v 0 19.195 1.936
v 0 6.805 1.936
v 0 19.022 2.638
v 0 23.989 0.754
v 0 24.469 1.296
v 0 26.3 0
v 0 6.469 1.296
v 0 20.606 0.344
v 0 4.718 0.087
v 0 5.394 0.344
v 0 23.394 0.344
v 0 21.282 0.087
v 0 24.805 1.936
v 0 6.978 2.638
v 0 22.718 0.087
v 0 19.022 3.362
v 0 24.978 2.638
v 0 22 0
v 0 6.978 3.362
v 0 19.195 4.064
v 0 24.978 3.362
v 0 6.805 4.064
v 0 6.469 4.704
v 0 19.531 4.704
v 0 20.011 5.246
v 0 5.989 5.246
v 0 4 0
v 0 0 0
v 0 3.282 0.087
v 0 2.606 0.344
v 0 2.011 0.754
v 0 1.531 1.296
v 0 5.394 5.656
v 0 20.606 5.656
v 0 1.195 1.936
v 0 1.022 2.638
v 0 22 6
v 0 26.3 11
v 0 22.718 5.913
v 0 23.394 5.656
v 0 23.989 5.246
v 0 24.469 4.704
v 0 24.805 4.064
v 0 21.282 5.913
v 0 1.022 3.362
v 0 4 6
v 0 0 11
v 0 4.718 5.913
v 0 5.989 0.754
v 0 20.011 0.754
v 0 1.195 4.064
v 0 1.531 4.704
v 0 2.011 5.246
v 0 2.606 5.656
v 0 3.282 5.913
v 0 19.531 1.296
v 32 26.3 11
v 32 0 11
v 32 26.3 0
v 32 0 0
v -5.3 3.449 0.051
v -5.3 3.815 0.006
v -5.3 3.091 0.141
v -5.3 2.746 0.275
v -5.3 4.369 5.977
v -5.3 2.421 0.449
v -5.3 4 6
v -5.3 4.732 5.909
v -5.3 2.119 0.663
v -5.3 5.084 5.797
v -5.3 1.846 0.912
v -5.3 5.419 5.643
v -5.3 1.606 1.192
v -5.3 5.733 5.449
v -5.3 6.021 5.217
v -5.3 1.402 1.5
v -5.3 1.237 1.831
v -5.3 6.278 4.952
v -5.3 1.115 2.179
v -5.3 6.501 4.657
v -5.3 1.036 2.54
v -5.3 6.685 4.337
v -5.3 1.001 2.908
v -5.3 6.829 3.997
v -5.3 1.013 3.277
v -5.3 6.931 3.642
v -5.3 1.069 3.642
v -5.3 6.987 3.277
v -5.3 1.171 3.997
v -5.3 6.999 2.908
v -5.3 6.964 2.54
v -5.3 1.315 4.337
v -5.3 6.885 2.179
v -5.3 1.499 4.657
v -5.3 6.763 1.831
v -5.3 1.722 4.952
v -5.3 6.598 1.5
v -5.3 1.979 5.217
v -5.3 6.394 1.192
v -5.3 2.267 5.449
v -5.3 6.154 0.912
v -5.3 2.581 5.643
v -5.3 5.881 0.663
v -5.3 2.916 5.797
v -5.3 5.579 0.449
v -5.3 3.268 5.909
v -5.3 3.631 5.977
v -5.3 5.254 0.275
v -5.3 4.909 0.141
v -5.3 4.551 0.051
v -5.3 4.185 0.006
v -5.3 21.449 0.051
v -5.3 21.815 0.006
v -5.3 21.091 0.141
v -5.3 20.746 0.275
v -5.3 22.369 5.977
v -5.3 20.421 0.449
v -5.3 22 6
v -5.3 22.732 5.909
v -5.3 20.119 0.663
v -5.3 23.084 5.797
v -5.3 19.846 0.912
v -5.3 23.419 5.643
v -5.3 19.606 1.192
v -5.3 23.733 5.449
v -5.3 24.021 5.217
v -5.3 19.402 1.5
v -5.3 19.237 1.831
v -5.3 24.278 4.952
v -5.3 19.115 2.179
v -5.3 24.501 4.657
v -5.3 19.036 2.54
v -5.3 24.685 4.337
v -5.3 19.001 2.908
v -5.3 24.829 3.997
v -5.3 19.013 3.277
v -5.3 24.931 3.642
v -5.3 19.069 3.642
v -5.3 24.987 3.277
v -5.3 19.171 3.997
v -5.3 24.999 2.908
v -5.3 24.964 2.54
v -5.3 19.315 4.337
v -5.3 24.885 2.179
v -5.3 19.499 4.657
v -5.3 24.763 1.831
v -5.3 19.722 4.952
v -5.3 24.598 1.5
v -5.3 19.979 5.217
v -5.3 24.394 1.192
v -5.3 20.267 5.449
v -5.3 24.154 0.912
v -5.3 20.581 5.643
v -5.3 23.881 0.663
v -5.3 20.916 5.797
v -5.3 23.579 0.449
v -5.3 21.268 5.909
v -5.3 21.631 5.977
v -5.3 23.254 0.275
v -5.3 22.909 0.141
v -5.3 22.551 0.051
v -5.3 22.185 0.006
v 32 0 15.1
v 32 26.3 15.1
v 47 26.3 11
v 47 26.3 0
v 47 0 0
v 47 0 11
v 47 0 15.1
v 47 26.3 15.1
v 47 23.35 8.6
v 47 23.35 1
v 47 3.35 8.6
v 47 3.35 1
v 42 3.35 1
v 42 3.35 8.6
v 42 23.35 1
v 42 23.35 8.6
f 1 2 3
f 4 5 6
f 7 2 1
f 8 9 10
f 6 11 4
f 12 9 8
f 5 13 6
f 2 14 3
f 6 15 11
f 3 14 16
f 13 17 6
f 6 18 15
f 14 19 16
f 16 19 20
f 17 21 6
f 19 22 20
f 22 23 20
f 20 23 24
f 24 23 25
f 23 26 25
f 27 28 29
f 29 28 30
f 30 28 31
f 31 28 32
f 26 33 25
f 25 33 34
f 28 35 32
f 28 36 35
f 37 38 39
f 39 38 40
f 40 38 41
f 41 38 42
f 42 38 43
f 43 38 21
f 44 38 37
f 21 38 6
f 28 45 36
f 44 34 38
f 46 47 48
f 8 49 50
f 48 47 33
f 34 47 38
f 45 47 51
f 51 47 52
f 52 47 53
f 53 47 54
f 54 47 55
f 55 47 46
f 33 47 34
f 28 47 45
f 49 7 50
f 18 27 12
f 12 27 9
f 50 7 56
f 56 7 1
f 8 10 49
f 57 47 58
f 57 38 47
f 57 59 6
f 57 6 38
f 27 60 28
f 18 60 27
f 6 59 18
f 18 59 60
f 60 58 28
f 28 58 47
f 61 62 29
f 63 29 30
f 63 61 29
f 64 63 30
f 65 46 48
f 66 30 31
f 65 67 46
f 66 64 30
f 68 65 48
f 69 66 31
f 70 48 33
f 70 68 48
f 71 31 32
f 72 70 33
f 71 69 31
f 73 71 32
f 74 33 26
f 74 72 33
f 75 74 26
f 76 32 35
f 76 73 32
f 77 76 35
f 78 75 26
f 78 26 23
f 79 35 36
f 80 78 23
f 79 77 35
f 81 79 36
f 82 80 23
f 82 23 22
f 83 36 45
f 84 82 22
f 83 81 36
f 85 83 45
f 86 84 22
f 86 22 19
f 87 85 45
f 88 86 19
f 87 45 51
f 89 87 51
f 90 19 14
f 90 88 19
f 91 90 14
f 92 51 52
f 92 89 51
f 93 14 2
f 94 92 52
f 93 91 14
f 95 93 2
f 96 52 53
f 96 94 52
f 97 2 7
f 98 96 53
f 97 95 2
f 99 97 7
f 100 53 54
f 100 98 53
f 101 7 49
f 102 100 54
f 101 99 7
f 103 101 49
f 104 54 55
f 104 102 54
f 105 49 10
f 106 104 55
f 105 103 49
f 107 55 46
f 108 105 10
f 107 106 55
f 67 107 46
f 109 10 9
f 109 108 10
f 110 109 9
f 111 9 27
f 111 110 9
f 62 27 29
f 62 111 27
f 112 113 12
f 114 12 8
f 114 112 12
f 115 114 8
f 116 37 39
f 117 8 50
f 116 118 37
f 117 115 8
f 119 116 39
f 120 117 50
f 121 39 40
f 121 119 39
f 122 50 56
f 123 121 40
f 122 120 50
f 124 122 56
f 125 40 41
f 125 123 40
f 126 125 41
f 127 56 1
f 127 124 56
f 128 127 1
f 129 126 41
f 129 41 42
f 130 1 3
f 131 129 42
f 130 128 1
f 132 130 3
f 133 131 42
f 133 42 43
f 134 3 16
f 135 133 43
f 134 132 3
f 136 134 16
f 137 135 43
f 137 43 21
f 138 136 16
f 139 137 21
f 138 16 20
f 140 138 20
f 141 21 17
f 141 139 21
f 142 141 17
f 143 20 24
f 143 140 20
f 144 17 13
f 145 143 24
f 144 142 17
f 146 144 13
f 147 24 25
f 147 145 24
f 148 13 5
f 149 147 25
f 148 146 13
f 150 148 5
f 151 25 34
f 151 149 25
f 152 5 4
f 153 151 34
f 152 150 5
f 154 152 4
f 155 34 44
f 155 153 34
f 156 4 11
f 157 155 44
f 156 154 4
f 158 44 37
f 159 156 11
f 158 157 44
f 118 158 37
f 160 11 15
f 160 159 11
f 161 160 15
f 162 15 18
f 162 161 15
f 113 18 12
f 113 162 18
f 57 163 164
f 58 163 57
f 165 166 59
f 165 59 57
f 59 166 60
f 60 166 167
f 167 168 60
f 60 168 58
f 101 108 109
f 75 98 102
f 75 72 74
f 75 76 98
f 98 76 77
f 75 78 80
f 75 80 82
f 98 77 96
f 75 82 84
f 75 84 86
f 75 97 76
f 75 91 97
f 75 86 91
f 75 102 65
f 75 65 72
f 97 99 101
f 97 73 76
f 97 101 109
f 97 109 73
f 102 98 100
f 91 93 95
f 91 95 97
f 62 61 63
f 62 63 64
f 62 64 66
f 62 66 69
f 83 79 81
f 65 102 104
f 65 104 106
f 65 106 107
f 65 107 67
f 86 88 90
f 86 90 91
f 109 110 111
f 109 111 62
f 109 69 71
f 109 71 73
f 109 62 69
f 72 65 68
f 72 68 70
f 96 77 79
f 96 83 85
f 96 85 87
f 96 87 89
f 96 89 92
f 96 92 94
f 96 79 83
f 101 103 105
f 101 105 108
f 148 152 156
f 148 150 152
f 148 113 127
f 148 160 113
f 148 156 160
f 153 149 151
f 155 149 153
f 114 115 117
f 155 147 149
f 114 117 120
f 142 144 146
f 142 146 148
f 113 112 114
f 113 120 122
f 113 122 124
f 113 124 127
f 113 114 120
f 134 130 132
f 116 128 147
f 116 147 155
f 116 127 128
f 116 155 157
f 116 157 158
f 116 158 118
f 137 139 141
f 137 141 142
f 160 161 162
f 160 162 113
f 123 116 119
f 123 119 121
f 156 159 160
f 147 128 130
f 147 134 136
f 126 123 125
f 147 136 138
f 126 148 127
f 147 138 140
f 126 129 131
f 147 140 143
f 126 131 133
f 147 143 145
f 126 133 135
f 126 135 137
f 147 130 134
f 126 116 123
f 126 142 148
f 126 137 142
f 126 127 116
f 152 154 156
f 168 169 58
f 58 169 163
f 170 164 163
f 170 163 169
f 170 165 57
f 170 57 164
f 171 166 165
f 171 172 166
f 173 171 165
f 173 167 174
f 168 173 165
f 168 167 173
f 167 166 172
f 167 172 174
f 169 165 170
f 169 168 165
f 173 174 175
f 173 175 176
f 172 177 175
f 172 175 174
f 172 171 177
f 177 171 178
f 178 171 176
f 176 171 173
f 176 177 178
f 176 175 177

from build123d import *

# Parameters (mm, degrees)
BOX002_W          = 5
BOX002_H          = 20
BOX002_DEPTH      = 7.6
BOX001_W          = 15
BOX001_H          = 26.3
BOX001_DEPTH      = 15.1
CYLINDER_R        = 3
CYLINDER_DEPTH    = 5.3
CYLINDER001_R     = 3
CYLINDER001_DEPTH = 5.3
BOX_W             = 47
BOX_H             = 26.3
BOX_DEPTH         = 11


with BuildPart() as plugs:
    # Box002 → Box002 (new body)
    with BuildSketch(Plane(origin=(42, 3.35, 1), x_dir=(1, 0, 0), z_dir=(0, 0, 1))):
        with Locations((2.5, 10)):
            Rectangle(BOX002_W, BOX002_H)
    extrude(amount=BOX002_DEPTH)


with BuildPart() as cube001:
    # Box001 → Box001 (new body)
    with BuildSketch(Plane(origin=(32, 0, 0), x_dir=(1, 0, 0), z_dir=(0, 0, 1))):
        with Locations((7.5, 13.15)):
            Rectangle(BOX001_W, BOX001_H)
    extrude(amount=BOX001_DEPTH)


with BuildPart() as cylinder:
    # Cylinder → Cylinder (new body)
    with BuildSketch(Plane(origin=(0, 4, 3), x_dir=(0, 0, 1), z_dir=(-1, 0, 0))):
        Circle(CYLINDER_R)
    extrude(amount=CYLINDER_DEPTH)


with BuildPart() as cylinder001:
    # Cylinder001 → Cylinder001 (new body)
    with BuildSketch(Plane(origin=(0, 22, 3), x_dir=(0, 0, 1), z_dir=(-1, 0, 0))):
        Circle(CYLINDER001_R)
    extrude(amount=CYLINDER001_DEPTH)


with BuildPart() as receiver_model:
    # Box → Box (new body)
    with BuildSketch(Plane.XY):
        with Locations((23.5, 13.15)):
            Rectangle(BOX_W, BOX_H)
    extrude(amount=BOX_DEPTH)

    # Fusion: union Cube001, Cylinder, Cylinder001
    add(cube001.part)
    add(cylinder.part)
    add(cylinder001.part)

    # Cut: cut Plugs
    add(plugs.part, mode=Mode.SUBTRACT)


solid = receiver_model.part
